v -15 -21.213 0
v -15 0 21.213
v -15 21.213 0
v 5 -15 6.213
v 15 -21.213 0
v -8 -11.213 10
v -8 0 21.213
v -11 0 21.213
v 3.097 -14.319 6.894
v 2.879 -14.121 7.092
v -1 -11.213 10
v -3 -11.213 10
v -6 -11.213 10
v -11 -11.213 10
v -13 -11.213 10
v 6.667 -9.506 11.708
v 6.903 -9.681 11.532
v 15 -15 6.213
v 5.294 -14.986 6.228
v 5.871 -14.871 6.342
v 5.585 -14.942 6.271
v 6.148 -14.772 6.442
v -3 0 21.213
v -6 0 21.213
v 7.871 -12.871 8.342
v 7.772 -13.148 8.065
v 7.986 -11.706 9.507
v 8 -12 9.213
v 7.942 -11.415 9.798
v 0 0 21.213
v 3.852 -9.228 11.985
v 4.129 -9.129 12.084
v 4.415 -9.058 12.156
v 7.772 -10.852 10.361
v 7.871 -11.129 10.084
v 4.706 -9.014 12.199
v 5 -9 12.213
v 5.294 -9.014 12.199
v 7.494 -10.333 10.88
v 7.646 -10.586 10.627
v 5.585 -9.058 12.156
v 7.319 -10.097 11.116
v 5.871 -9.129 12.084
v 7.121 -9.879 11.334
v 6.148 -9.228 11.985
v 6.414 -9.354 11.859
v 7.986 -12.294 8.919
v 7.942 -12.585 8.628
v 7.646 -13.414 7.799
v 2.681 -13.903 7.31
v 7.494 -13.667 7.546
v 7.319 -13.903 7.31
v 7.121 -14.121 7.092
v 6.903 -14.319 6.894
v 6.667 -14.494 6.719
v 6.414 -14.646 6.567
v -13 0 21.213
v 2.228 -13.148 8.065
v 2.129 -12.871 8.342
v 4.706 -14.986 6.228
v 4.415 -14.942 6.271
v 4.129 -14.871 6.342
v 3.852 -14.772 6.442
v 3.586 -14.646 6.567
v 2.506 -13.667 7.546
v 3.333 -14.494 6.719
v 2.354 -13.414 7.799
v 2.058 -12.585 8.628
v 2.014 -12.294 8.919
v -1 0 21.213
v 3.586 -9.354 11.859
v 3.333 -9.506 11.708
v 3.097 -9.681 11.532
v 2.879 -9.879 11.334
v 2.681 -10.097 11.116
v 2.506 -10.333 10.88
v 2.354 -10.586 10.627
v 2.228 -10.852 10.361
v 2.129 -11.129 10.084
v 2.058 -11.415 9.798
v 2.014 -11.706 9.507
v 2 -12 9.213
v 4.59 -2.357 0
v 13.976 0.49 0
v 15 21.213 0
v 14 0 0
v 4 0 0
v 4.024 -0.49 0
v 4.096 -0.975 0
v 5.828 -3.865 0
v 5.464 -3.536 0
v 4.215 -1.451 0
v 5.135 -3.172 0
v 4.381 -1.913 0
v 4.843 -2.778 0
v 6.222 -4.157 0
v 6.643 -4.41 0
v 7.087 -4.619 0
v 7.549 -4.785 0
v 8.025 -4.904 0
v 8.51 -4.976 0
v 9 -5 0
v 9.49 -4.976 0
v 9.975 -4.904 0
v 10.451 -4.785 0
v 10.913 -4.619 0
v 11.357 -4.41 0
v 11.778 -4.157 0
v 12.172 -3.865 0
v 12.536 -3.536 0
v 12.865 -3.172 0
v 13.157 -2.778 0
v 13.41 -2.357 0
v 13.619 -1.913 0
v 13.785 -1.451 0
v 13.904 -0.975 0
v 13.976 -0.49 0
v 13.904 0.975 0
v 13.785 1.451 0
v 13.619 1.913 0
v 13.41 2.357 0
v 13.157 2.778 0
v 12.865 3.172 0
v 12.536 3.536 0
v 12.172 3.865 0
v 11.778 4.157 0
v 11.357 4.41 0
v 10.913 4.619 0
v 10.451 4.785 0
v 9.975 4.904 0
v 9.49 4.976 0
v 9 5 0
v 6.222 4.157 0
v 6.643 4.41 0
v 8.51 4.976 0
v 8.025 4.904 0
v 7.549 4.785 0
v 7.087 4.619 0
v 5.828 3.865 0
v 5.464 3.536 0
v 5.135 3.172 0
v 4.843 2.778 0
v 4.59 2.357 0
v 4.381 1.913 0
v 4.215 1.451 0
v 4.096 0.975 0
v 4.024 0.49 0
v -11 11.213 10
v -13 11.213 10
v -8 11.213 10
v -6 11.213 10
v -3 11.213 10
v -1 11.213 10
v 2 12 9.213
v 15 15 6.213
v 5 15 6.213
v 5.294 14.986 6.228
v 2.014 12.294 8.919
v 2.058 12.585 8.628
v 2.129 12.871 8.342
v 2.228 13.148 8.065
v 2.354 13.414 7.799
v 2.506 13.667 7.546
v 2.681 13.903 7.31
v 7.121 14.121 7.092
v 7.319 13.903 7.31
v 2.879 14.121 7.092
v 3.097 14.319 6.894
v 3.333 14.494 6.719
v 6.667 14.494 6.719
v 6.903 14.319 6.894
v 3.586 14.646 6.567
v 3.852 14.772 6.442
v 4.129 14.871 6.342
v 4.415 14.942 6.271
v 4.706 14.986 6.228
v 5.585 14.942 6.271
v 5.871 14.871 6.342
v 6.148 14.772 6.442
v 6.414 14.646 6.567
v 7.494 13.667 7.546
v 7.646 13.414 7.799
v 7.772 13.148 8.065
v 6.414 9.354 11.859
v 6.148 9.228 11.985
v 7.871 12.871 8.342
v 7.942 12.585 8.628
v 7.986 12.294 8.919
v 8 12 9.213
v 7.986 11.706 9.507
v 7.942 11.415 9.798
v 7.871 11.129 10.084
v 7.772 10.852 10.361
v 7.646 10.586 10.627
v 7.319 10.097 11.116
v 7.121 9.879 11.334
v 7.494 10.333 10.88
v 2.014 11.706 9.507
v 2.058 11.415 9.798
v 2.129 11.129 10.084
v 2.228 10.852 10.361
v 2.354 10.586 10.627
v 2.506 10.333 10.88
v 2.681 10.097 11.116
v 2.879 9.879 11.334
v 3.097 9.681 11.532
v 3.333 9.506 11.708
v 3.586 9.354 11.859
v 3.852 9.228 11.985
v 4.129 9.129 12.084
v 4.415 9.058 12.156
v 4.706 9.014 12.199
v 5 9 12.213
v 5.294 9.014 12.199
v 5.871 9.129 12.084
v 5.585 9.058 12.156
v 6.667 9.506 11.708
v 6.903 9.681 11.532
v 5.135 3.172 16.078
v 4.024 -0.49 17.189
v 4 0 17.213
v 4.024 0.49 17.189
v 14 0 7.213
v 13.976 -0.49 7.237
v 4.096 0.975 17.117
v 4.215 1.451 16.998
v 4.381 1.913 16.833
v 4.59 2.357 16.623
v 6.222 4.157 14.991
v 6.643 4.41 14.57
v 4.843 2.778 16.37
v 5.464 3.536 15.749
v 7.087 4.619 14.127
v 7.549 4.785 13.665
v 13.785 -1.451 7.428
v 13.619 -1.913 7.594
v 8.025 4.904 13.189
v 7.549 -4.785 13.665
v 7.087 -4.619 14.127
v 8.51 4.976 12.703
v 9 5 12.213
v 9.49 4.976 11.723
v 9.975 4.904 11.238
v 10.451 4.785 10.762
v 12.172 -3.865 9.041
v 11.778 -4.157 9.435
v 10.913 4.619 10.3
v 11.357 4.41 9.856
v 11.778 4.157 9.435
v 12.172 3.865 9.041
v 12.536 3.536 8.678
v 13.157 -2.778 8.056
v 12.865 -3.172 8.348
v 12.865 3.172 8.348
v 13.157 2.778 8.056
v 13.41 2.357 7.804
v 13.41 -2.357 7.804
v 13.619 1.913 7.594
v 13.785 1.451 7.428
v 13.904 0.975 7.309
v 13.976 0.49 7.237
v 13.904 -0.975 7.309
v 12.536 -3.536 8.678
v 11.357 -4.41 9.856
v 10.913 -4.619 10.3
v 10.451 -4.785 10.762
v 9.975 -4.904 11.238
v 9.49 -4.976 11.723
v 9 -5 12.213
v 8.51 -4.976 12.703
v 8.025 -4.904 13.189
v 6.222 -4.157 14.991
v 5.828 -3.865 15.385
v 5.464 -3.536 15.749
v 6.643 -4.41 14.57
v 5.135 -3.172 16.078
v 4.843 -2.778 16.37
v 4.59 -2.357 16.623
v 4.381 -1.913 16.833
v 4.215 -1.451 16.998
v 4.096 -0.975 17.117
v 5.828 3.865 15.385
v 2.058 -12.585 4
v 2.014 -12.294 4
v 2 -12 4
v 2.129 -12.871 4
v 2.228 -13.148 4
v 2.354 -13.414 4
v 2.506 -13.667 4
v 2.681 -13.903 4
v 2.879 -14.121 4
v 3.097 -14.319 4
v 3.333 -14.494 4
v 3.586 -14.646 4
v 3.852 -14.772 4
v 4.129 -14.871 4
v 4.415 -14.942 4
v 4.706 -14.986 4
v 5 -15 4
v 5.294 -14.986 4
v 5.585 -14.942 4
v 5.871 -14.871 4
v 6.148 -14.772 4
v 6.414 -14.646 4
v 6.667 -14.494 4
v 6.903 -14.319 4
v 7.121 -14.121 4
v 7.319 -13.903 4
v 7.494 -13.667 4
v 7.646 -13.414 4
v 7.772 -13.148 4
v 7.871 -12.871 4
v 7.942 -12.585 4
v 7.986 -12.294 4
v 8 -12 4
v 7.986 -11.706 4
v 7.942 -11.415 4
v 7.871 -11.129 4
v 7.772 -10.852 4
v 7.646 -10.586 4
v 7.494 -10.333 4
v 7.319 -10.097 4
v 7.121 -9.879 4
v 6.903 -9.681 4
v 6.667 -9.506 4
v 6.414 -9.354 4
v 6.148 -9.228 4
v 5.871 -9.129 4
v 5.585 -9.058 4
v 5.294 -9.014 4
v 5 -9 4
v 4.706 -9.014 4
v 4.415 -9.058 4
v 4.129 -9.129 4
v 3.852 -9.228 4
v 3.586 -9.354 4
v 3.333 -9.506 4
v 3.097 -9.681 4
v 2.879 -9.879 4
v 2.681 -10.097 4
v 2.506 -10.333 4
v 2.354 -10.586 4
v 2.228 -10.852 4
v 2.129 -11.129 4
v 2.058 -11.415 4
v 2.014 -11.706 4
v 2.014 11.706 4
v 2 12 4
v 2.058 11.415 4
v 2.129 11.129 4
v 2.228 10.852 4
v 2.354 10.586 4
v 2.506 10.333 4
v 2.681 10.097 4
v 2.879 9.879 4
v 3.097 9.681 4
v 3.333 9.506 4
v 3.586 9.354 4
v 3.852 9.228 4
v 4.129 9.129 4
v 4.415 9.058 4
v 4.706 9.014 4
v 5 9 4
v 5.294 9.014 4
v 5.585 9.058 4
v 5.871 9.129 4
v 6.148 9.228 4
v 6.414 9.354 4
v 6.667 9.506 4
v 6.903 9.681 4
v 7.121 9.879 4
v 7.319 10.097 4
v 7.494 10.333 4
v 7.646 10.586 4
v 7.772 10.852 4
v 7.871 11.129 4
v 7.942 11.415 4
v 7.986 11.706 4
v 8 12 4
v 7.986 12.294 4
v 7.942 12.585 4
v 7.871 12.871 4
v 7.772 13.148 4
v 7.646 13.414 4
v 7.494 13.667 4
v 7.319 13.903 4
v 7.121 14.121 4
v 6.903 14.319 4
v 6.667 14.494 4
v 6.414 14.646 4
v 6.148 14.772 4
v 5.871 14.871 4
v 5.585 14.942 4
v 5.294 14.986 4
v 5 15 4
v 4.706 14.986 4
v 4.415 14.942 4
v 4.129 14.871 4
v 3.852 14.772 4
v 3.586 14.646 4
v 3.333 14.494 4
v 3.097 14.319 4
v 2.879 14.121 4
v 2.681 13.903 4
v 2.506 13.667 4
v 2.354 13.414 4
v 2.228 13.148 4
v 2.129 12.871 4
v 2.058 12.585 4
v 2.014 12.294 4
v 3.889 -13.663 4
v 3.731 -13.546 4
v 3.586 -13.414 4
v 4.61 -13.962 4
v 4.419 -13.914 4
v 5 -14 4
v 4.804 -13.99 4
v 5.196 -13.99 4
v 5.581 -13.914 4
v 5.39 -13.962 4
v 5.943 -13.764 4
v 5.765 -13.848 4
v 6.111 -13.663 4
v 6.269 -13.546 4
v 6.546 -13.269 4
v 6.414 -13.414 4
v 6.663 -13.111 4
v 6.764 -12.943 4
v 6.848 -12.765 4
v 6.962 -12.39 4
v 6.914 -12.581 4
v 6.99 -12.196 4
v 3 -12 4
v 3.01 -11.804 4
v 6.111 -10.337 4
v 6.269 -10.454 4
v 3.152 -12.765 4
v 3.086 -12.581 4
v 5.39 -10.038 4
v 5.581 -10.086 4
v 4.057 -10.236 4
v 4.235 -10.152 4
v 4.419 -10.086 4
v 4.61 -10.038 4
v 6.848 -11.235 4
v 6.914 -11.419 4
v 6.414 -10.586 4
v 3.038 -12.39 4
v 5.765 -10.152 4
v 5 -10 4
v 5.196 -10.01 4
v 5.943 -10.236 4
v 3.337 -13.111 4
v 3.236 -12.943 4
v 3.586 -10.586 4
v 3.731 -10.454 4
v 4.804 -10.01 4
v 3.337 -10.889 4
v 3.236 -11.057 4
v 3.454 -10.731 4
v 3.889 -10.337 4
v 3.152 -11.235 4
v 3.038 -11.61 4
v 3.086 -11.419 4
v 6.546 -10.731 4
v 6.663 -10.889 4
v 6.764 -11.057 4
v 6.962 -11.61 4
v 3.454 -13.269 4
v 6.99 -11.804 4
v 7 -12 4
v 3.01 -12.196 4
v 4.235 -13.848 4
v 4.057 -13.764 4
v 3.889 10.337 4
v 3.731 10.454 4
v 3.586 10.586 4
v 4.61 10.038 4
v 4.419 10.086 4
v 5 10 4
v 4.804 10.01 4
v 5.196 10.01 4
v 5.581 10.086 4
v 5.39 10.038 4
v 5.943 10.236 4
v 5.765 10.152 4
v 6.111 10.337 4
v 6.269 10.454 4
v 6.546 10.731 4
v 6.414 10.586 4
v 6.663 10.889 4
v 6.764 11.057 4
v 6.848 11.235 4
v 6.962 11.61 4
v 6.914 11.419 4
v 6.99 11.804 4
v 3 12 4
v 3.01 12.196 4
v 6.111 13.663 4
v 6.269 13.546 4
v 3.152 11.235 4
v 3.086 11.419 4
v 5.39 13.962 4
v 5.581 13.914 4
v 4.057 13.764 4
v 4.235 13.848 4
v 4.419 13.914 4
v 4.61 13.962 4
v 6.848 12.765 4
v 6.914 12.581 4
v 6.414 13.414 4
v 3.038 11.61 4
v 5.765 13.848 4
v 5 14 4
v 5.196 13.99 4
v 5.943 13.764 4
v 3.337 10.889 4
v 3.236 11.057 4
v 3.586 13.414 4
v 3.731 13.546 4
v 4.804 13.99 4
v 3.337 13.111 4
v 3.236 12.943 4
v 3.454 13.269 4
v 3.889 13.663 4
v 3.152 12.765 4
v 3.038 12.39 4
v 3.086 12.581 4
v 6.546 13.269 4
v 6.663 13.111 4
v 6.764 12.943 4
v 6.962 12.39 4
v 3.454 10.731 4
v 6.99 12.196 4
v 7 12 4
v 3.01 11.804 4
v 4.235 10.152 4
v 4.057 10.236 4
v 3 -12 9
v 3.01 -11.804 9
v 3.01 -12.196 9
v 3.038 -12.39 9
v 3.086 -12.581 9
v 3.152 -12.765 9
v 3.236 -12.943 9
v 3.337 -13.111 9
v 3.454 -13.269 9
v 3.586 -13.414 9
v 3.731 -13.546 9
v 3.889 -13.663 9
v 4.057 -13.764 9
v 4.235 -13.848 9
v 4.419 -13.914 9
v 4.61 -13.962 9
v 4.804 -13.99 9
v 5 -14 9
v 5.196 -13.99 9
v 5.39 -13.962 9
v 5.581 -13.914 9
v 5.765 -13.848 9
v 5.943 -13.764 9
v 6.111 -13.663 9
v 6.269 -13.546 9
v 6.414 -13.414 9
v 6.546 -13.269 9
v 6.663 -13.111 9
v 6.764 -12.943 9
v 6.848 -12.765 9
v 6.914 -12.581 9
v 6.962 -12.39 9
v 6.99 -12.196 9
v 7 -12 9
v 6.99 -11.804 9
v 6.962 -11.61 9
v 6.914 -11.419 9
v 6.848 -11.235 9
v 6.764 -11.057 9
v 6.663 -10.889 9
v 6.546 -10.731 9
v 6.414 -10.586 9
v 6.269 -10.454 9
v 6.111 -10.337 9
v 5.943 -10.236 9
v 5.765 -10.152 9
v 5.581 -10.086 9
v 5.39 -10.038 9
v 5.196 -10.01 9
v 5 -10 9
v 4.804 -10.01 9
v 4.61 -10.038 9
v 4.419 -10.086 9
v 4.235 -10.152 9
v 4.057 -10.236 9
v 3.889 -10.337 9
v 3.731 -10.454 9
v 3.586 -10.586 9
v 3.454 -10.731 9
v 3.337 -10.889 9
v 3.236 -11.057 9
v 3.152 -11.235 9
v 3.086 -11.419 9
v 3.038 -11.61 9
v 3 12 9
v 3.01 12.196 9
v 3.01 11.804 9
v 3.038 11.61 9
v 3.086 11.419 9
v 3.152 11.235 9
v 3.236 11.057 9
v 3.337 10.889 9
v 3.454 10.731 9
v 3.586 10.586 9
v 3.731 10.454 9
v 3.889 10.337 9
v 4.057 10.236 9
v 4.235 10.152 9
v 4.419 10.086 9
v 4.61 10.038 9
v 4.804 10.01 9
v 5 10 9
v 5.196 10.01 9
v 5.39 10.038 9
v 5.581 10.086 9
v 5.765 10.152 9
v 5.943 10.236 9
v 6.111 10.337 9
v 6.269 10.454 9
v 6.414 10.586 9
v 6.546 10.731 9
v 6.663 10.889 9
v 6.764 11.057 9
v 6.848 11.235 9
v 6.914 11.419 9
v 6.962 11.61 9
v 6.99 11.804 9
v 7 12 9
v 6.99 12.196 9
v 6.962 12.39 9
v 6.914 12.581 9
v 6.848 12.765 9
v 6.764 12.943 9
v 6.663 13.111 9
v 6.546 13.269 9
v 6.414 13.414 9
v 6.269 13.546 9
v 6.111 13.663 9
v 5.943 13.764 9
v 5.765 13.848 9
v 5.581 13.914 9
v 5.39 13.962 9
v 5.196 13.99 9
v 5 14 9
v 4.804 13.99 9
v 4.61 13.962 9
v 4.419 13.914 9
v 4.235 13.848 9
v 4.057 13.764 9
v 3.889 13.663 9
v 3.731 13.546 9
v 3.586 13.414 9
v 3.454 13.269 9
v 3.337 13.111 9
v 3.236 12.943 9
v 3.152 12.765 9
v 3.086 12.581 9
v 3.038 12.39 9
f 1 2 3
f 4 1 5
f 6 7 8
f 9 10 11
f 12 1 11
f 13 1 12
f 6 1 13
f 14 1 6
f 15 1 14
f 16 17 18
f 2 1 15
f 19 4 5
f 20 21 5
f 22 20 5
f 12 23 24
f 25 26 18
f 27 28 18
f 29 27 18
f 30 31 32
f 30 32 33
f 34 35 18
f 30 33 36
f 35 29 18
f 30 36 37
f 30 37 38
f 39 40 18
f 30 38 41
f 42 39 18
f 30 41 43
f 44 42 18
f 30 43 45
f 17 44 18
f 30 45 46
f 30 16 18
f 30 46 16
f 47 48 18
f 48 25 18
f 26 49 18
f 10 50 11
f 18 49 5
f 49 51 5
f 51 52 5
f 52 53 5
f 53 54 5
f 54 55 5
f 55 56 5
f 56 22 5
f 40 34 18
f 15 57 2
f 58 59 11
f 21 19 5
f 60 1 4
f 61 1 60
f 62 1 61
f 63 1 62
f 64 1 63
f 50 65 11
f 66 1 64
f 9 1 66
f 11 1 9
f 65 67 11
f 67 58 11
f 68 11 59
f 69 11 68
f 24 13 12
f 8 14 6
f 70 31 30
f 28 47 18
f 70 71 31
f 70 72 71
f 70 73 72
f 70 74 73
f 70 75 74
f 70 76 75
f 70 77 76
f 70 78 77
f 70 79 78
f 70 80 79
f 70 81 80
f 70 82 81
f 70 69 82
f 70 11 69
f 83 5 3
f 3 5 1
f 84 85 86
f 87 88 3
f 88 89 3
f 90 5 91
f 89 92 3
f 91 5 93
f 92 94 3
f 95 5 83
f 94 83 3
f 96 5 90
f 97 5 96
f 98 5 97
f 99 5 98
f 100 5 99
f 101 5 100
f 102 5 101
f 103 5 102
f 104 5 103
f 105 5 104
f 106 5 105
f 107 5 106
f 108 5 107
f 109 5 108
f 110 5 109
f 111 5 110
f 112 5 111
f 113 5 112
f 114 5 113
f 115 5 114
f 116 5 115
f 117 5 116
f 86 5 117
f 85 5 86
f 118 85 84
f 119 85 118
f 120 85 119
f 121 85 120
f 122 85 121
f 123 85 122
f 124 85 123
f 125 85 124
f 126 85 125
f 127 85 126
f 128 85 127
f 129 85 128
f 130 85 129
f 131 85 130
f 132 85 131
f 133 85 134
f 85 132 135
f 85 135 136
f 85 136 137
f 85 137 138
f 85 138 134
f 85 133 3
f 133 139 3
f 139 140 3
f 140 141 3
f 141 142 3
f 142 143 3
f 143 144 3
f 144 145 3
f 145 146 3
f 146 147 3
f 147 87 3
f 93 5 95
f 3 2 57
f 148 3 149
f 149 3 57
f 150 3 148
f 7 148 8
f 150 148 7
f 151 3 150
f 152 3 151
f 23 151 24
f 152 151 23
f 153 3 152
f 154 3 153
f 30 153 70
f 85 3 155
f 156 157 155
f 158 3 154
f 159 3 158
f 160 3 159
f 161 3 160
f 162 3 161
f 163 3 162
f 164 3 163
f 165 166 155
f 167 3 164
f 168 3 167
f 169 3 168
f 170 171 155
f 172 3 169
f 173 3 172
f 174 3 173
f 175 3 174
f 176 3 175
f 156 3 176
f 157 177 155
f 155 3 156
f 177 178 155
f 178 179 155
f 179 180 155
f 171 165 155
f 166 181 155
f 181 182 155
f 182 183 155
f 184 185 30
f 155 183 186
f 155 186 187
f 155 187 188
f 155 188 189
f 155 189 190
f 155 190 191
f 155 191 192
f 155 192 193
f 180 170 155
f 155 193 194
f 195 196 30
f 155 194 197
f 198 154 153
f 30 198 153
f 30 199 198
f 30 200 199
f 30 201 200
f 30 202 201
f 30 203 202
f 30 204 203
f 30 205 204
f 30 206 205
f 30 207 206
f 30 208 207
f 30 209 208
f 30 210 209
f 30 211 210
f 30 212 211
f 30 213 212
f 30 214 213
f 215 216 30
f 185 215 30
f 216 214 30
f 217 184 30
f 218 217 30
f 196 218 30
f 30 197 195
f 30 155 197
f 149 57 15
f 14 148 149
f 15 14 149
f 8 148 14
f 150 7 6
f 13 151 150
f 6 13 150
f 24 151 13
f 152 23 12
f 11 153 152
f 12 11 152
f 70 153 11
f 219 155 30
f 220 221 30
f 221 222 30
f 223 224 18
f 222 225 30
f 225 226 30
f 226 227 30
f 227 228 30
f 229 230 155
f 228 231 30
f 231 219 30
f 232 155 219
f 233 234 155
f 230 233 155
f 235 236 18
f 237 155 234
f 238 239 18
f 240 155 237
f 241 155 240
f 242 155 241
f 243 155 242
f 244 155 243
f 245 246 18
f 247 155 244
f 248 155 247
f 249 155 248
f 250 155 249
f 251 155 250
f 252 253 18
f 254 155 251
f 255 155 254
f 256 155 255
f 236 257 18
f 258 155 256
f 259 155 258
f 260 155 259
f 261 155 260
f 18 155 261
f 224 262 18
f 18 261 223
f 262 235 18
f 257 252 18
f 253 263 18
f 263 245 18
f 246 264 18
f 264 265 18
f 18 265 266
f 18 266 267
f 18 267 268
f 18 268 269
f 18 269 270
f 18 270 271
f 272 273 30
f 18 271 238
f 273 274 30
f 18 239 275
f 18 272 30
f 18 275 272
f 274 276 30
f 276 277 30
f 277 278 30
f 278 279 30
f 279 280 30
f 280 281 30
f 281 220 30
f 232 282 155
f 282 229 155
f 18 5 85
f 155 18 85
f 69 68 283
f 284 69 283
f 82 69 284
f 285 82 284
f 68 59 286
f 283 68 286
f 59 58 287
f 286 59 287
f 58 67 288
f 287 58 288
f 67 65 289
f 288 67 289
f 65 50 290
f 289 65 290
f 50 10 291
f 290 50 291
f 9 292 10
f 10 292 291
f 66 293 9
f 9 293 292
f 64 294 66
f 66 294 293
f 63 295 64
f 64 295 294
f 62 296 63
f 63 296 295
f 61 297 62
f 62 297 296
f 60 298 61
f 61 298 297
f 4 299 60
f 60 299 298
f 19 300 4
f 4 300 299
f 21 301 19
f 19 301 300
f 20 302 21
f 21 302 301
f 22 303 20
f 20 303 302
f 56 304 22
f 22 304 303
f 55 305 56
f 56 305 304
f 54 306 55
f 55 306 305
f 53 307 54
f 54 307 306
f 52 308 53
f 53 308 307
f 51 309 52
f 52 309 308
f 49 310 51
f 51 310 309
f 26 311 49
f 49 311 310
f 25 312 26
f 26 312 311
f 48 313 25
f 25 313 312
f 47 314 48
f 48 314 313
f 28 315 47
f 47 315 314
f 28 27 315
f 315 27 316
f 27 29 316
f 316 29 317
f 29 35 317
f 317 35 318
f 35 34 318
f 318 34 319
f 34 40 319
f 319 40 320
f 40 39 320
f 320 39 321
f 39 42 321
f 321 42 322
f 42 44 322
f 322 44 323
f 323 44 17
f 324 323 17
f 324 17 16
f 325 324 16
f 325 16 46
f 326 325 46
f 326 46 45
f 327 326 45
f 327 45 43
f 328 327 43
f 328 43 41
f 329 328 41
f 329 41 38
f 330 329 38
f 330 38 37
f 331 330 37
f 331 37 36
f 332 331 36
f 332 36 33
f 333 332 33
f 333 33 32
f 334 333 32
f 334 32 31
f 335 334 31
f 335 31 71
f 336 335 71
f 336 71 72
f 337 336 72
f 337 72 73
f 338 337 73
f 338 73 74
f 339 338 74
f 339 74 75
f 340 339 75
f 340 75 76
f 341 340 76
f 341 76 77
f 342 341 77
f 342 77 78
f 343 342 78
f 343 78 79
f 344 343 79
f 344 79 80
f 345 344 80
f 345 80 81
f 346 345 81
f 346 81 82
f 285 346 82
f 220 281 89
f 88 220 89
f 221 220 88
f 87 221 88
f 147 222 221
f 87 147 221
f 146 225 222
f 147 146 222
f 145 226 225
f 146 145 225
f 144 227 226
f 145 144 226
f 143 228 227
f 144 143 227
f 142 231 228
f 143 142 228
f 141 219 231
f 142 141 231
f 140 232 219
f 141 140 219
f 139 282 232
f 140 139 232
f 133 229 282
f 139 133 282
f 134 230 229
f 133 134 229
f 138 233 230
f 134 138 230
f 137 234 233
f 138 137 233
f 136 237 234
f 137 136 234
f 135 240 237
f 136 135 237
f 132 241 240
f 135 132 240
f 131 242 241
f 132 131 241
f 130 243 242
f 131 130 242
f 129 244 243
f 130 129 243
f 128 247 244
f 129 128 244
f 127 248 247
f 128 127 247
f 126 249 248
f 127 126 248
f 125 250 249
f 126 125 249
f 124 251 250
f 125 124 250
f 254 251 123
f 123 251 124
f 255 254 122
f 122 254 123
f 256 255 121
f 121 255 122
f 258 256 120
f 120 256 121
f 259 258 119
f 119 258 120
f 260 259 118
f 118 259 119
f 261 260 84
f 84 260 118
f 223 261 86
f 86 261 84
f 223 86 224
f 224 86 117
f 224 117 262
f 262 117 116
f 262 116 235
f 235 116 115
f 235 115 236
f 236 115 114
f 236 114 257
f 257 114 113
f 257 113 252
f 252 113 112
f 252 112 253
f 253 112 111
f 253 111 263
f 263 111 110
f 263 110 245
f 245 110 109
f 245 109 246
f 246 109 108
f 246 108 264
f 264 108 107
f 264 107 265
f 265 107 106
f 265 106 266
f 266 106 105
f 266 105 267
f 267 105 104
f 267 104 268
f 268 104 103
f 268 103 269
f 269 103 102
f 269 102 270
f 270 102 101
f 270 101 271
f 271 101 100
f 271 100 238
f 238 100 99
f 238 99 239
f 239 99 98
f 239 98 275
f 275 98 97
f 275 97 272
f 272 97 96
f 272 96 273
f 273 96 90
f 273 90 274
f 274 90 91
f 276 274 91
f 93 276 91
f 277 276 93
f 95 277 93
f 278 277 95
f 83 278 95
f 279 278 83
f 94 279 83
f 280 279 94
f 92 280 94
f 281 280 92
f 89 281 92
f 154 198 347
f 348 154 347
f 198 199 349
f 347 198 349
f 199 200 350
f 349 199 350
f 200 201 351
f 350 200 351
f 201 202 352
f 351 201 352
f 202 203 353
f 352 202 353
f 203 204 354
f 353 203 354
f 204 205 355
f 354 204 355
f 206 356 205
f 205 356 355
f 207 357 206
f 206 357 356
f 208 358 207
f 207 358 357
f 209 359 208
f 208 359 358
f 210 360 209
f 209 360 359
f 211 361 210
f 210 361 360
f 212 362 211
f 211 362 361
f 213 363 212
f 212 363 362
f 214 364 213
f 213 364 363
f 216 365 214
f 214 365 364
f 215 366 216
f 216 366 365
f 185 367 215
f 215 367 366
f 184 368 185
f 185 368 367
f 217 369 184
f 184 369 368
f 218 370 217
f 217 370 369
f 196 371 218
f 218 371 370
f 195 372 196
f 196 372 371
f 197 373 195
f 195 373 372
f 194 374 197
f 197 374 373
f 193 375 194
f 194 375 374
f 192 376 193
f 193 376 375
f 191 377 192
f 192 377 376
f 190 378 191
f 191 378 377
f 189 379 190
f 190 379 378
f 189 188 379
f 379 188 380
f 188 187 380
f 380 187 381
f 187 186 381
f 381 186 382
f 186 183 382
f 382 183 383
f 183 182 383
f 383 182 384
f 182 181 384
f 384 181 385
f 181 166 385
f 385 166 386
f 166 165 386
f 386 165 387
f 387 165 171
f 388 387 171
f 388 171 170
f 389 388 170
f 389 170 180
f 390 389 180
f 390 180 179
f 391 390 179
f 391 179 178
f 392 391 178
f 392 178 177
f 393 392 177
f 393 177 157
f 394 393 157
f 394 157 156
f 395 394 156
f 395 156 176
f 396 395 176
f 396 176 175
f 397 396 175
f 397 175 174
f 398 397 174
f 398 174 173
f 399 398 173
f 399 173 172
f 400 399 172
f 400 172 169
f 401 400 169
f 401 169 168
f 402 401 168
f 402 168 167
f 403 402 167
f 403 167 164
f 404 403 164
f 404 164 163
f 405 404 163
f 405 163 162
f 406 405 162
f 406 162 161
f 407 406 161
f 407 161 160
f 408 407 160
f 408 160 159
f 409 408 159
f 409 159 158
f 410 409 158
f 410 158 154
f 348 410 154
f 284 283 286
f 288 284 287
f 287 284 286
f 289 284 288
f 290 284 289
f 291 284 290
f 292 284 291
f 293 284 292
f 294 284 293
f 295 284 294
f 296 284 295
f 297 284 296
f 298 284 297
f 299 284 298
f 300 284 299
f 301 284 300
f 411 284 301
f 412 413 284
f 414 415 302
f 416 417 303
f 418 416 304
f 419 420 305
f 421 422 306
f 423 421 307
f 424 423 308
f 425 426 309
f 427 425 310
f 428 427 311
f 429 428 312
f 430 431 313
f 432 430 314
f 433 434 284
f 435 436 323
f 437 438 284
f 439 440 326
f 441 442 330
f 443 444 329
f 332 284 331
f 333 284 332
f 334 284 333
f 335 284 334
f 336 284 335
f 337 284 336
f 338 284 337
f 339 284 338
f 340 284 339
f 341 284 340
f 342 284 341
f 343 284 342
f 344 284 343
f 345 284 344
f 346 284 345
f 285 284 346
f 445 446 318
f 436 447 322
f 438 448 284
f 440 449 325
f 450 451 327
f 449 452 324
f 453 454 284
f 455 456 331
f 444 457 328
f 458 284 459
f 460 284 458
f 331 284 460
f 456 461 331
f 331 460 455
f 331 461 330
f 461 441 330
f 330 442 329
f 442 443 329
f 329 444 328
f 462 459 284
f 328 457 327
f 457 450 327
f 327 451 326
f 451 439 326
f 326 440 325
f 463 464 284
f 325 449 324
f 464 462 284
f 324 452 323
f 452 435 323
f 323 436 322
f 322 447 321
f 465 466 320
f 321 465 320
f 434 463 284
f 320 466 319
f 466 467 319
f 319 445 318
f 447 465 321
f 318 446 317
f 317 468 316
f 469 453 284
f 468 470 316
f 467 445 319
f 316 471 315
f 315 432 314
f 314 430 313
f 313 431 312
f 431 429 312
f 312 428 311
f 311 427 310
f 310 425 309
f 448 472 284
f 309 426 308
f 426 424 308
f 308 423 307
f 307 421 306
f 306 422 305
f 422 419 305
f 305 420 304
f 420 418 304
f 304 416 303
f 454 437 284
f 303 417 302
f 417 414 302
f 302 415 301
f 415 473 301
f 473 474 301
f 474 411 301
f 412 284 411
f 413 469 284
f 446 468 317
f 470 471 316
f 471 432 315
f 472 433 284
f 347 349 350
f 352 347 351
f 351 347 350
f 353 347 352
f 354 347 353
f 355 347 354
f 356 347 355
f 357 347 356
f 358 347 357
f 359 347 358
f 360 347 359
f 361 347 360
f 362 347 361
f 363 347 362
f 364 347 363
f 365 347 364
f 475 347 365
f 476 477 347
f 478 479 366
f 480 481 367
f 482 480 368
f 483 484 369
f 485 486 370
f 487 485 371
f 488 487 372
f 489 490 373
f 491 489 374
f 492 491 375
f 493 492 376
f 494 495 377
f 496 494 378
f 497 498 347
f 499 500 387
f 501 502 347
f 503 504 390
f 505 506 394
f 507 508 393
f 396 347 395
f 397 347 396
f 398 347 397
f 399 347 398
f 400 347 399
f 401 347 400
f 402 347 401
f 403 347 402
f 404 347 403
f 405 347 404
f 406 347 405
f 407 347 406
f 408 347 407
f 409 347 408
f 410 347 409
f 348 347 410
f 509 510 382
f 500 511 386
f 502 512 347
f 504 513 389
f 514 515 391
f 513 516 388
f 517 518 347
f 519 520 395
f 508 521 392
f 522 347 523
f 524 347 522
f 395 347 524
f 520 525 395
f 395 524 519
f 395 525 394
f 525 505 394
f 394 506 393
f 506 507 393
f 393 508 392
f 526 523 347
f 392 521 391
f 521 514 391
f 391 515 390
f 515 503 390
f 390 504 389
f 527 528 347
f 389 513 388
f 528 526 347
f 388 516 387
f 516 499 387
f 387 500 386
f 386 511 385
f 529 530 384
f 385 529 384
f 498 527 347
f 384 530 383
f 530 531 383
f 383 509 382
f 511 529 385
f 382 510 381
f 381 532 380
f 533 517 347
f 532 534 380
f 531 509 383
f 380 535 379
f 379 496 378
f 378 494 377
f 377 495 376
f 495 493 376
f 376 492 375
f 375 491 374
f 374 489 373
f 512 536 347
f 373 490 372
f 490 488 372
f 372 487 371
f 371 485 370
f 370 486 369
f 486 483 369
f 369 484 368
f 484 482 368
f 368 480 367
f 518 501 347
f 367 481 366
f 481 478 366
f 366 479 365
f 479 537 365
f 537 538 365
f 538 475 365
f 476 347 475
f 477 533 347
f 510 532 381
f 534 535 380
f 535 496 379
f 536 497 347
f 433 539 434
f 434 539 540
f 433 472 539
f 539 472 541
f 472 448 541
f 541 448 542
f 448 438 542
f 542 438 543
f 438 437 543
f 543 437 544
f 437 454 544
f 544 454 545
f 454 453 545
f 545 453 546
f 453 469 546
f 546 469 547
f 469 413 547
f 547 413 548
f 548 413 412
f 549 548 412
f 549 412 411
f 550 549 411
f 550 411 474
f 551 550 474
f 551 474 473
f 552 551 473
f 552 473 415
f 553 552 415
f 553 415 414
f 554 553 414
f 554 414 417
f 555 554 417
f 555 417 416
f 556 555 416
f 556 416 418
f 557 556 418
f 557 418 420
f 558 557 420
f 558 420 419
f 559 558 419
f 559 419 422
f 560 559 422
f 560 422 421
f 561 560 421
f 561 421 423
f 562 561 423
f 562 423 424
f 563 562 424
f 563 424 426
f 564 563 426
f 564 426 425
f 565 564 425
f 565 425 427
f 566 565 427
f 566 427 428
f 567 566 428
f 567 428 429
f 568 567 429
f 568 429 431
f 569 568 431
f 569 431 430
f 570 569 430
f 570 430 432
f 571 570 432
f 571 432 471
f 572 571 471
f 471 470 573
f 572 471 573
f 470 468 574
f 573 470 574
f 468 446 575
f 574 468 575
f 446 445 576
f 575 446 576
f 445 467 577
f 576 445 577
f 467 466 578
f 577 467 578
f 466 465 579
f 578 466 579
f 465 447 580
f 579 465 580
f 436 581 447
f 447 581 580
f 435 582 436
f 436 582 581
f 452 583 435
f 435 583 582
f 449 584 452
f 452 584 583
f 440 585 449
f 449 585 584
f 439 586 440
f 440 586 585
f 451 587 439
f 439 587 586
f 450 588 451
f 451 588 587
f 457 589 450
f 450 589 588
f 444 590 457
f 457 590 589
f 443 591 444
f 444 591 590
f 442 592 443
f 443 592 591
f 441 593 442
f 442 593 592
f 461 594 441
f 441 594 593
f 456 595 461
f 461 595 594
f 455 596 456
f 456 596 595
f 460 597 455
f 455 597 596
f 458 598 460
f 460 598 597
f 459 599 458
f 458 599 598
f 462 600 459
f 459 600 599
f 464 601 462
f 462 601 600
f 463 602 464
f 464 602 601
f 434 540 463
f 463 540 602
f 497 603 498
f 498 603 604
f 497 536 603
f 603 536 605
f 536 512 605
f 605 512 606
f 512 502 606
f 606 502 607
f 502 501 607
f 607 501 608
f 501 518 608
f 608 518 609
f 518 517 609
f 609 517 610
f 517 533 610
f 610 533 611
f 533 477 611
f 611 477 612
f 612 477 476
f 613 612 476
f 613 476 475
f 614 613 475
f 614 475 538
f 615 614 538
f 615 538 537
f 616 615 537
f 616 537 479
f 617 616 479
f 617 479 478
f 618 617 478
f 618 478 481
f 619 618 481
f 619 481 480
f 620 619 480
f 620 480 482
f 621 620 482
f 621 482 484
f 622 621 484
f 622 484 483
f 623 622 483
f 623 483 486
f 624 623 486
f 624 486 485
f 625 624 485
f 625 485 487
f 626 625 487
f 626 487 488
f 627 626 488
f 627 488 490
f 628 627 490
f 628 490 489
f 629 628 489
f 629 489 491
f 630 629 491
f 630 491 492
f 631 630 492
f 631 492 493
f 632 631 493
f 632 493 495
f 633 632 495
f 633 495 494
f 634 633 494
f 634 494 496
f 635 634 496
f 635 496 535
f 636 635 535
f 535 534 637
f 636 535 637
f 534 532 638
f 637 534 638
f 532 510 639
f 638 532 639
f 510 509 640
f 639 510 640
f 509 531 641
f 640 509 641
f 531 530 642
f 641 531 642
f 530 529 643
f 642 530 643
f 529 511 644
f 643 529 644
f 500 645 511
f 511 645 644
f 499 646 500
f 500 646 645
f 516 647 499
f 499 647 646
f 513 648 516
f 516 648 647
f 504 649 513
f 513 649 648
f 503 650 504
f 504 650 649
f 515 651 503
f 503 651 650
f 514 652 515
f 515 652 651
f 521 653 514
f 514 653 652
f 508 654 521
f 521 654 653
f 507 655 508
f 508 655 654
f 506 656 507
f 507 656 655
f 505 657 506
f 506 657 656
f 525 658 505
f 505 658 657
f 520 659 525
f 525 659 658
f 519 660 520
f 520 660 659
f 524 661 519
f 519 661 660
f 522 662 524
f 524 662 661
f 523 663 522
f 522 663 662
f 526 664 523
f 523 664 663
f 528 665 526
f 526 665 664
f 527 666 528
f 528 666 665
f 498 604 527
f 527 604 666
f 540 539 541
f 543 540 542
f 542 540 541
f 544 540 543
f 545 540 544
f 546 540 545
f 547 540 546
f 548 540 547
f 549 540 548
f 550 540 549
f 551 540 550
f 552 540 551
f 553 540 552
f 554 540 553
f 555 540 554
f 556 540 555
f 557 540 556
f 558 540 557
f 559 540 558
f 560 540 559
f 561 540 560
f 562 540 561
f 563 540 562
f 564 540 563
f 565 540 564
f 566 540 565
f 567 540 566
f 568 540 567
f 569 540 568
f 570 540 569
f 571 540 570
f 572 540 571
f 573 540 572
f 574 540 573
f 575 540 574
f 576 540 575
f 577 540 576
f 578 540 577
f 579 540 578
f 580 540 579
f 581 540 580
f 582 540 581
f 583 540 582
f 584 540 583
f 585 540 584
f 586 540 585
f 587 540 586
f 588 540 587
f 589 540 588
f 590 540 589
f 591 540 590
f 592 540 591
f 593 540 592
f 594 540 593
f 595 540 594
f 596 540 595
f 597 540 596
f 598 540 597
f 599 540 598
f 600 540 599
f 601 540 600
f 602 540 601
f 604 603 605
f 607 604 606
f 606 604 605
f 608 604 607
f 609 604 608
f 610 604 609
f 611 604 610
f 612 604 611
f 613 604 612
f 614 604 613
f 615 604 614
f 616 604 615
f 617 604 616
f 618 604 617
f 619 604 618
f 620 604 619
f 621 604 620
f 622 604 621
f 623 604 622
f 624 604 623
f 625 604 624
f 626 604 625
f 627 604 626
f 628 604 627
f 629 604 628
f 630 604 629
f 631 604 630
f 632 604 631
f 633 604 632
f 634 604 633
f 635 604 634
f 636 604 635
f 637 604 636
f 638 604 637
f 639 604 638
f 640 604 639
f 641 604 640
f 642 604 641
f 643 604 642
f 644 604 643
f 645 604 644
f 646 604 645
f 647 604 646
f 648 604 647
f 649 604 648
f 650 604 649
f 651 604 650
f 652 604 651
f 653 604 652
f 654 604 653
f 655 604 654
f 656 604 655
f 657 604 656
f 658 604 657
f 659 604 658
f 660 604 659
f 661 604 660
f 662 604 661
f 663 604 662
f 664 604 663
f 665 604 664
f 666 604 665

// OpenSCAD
$fn=64;
union(){
	translate([5,12,4])
	cylinder(h=5,r1=2,r2=2);
	translate([5,-12,4])
	cylinder(h=5,r1=2,r2=2);
	difference(){
		difference(){
			rotate([45,0,0])
			cube([30,30,30], center=true);
			translate([0,0,-25])
			cube([50,50,50], center = true);
			translate([0,-30,21.2132])
			rotate([0,45,0])
			cube([50,50,50]);
			translate([-13,-30,10])
			cube([2,50,50]);
			translate([-8,-30,10])
			cube([2,50,50]);
			translate([-3,-30,10])
			cube([2,50,50]);
		}
		translate([9,0,-10])
		cylinder(h=35,r1=5,r2=5);
		translate([5,12,4])
		cylinder(h=10,r1=3,r2=3);
		translate([5,-12,4])
		cylinder(h=10,r1=3,r2=3);
	}
}
